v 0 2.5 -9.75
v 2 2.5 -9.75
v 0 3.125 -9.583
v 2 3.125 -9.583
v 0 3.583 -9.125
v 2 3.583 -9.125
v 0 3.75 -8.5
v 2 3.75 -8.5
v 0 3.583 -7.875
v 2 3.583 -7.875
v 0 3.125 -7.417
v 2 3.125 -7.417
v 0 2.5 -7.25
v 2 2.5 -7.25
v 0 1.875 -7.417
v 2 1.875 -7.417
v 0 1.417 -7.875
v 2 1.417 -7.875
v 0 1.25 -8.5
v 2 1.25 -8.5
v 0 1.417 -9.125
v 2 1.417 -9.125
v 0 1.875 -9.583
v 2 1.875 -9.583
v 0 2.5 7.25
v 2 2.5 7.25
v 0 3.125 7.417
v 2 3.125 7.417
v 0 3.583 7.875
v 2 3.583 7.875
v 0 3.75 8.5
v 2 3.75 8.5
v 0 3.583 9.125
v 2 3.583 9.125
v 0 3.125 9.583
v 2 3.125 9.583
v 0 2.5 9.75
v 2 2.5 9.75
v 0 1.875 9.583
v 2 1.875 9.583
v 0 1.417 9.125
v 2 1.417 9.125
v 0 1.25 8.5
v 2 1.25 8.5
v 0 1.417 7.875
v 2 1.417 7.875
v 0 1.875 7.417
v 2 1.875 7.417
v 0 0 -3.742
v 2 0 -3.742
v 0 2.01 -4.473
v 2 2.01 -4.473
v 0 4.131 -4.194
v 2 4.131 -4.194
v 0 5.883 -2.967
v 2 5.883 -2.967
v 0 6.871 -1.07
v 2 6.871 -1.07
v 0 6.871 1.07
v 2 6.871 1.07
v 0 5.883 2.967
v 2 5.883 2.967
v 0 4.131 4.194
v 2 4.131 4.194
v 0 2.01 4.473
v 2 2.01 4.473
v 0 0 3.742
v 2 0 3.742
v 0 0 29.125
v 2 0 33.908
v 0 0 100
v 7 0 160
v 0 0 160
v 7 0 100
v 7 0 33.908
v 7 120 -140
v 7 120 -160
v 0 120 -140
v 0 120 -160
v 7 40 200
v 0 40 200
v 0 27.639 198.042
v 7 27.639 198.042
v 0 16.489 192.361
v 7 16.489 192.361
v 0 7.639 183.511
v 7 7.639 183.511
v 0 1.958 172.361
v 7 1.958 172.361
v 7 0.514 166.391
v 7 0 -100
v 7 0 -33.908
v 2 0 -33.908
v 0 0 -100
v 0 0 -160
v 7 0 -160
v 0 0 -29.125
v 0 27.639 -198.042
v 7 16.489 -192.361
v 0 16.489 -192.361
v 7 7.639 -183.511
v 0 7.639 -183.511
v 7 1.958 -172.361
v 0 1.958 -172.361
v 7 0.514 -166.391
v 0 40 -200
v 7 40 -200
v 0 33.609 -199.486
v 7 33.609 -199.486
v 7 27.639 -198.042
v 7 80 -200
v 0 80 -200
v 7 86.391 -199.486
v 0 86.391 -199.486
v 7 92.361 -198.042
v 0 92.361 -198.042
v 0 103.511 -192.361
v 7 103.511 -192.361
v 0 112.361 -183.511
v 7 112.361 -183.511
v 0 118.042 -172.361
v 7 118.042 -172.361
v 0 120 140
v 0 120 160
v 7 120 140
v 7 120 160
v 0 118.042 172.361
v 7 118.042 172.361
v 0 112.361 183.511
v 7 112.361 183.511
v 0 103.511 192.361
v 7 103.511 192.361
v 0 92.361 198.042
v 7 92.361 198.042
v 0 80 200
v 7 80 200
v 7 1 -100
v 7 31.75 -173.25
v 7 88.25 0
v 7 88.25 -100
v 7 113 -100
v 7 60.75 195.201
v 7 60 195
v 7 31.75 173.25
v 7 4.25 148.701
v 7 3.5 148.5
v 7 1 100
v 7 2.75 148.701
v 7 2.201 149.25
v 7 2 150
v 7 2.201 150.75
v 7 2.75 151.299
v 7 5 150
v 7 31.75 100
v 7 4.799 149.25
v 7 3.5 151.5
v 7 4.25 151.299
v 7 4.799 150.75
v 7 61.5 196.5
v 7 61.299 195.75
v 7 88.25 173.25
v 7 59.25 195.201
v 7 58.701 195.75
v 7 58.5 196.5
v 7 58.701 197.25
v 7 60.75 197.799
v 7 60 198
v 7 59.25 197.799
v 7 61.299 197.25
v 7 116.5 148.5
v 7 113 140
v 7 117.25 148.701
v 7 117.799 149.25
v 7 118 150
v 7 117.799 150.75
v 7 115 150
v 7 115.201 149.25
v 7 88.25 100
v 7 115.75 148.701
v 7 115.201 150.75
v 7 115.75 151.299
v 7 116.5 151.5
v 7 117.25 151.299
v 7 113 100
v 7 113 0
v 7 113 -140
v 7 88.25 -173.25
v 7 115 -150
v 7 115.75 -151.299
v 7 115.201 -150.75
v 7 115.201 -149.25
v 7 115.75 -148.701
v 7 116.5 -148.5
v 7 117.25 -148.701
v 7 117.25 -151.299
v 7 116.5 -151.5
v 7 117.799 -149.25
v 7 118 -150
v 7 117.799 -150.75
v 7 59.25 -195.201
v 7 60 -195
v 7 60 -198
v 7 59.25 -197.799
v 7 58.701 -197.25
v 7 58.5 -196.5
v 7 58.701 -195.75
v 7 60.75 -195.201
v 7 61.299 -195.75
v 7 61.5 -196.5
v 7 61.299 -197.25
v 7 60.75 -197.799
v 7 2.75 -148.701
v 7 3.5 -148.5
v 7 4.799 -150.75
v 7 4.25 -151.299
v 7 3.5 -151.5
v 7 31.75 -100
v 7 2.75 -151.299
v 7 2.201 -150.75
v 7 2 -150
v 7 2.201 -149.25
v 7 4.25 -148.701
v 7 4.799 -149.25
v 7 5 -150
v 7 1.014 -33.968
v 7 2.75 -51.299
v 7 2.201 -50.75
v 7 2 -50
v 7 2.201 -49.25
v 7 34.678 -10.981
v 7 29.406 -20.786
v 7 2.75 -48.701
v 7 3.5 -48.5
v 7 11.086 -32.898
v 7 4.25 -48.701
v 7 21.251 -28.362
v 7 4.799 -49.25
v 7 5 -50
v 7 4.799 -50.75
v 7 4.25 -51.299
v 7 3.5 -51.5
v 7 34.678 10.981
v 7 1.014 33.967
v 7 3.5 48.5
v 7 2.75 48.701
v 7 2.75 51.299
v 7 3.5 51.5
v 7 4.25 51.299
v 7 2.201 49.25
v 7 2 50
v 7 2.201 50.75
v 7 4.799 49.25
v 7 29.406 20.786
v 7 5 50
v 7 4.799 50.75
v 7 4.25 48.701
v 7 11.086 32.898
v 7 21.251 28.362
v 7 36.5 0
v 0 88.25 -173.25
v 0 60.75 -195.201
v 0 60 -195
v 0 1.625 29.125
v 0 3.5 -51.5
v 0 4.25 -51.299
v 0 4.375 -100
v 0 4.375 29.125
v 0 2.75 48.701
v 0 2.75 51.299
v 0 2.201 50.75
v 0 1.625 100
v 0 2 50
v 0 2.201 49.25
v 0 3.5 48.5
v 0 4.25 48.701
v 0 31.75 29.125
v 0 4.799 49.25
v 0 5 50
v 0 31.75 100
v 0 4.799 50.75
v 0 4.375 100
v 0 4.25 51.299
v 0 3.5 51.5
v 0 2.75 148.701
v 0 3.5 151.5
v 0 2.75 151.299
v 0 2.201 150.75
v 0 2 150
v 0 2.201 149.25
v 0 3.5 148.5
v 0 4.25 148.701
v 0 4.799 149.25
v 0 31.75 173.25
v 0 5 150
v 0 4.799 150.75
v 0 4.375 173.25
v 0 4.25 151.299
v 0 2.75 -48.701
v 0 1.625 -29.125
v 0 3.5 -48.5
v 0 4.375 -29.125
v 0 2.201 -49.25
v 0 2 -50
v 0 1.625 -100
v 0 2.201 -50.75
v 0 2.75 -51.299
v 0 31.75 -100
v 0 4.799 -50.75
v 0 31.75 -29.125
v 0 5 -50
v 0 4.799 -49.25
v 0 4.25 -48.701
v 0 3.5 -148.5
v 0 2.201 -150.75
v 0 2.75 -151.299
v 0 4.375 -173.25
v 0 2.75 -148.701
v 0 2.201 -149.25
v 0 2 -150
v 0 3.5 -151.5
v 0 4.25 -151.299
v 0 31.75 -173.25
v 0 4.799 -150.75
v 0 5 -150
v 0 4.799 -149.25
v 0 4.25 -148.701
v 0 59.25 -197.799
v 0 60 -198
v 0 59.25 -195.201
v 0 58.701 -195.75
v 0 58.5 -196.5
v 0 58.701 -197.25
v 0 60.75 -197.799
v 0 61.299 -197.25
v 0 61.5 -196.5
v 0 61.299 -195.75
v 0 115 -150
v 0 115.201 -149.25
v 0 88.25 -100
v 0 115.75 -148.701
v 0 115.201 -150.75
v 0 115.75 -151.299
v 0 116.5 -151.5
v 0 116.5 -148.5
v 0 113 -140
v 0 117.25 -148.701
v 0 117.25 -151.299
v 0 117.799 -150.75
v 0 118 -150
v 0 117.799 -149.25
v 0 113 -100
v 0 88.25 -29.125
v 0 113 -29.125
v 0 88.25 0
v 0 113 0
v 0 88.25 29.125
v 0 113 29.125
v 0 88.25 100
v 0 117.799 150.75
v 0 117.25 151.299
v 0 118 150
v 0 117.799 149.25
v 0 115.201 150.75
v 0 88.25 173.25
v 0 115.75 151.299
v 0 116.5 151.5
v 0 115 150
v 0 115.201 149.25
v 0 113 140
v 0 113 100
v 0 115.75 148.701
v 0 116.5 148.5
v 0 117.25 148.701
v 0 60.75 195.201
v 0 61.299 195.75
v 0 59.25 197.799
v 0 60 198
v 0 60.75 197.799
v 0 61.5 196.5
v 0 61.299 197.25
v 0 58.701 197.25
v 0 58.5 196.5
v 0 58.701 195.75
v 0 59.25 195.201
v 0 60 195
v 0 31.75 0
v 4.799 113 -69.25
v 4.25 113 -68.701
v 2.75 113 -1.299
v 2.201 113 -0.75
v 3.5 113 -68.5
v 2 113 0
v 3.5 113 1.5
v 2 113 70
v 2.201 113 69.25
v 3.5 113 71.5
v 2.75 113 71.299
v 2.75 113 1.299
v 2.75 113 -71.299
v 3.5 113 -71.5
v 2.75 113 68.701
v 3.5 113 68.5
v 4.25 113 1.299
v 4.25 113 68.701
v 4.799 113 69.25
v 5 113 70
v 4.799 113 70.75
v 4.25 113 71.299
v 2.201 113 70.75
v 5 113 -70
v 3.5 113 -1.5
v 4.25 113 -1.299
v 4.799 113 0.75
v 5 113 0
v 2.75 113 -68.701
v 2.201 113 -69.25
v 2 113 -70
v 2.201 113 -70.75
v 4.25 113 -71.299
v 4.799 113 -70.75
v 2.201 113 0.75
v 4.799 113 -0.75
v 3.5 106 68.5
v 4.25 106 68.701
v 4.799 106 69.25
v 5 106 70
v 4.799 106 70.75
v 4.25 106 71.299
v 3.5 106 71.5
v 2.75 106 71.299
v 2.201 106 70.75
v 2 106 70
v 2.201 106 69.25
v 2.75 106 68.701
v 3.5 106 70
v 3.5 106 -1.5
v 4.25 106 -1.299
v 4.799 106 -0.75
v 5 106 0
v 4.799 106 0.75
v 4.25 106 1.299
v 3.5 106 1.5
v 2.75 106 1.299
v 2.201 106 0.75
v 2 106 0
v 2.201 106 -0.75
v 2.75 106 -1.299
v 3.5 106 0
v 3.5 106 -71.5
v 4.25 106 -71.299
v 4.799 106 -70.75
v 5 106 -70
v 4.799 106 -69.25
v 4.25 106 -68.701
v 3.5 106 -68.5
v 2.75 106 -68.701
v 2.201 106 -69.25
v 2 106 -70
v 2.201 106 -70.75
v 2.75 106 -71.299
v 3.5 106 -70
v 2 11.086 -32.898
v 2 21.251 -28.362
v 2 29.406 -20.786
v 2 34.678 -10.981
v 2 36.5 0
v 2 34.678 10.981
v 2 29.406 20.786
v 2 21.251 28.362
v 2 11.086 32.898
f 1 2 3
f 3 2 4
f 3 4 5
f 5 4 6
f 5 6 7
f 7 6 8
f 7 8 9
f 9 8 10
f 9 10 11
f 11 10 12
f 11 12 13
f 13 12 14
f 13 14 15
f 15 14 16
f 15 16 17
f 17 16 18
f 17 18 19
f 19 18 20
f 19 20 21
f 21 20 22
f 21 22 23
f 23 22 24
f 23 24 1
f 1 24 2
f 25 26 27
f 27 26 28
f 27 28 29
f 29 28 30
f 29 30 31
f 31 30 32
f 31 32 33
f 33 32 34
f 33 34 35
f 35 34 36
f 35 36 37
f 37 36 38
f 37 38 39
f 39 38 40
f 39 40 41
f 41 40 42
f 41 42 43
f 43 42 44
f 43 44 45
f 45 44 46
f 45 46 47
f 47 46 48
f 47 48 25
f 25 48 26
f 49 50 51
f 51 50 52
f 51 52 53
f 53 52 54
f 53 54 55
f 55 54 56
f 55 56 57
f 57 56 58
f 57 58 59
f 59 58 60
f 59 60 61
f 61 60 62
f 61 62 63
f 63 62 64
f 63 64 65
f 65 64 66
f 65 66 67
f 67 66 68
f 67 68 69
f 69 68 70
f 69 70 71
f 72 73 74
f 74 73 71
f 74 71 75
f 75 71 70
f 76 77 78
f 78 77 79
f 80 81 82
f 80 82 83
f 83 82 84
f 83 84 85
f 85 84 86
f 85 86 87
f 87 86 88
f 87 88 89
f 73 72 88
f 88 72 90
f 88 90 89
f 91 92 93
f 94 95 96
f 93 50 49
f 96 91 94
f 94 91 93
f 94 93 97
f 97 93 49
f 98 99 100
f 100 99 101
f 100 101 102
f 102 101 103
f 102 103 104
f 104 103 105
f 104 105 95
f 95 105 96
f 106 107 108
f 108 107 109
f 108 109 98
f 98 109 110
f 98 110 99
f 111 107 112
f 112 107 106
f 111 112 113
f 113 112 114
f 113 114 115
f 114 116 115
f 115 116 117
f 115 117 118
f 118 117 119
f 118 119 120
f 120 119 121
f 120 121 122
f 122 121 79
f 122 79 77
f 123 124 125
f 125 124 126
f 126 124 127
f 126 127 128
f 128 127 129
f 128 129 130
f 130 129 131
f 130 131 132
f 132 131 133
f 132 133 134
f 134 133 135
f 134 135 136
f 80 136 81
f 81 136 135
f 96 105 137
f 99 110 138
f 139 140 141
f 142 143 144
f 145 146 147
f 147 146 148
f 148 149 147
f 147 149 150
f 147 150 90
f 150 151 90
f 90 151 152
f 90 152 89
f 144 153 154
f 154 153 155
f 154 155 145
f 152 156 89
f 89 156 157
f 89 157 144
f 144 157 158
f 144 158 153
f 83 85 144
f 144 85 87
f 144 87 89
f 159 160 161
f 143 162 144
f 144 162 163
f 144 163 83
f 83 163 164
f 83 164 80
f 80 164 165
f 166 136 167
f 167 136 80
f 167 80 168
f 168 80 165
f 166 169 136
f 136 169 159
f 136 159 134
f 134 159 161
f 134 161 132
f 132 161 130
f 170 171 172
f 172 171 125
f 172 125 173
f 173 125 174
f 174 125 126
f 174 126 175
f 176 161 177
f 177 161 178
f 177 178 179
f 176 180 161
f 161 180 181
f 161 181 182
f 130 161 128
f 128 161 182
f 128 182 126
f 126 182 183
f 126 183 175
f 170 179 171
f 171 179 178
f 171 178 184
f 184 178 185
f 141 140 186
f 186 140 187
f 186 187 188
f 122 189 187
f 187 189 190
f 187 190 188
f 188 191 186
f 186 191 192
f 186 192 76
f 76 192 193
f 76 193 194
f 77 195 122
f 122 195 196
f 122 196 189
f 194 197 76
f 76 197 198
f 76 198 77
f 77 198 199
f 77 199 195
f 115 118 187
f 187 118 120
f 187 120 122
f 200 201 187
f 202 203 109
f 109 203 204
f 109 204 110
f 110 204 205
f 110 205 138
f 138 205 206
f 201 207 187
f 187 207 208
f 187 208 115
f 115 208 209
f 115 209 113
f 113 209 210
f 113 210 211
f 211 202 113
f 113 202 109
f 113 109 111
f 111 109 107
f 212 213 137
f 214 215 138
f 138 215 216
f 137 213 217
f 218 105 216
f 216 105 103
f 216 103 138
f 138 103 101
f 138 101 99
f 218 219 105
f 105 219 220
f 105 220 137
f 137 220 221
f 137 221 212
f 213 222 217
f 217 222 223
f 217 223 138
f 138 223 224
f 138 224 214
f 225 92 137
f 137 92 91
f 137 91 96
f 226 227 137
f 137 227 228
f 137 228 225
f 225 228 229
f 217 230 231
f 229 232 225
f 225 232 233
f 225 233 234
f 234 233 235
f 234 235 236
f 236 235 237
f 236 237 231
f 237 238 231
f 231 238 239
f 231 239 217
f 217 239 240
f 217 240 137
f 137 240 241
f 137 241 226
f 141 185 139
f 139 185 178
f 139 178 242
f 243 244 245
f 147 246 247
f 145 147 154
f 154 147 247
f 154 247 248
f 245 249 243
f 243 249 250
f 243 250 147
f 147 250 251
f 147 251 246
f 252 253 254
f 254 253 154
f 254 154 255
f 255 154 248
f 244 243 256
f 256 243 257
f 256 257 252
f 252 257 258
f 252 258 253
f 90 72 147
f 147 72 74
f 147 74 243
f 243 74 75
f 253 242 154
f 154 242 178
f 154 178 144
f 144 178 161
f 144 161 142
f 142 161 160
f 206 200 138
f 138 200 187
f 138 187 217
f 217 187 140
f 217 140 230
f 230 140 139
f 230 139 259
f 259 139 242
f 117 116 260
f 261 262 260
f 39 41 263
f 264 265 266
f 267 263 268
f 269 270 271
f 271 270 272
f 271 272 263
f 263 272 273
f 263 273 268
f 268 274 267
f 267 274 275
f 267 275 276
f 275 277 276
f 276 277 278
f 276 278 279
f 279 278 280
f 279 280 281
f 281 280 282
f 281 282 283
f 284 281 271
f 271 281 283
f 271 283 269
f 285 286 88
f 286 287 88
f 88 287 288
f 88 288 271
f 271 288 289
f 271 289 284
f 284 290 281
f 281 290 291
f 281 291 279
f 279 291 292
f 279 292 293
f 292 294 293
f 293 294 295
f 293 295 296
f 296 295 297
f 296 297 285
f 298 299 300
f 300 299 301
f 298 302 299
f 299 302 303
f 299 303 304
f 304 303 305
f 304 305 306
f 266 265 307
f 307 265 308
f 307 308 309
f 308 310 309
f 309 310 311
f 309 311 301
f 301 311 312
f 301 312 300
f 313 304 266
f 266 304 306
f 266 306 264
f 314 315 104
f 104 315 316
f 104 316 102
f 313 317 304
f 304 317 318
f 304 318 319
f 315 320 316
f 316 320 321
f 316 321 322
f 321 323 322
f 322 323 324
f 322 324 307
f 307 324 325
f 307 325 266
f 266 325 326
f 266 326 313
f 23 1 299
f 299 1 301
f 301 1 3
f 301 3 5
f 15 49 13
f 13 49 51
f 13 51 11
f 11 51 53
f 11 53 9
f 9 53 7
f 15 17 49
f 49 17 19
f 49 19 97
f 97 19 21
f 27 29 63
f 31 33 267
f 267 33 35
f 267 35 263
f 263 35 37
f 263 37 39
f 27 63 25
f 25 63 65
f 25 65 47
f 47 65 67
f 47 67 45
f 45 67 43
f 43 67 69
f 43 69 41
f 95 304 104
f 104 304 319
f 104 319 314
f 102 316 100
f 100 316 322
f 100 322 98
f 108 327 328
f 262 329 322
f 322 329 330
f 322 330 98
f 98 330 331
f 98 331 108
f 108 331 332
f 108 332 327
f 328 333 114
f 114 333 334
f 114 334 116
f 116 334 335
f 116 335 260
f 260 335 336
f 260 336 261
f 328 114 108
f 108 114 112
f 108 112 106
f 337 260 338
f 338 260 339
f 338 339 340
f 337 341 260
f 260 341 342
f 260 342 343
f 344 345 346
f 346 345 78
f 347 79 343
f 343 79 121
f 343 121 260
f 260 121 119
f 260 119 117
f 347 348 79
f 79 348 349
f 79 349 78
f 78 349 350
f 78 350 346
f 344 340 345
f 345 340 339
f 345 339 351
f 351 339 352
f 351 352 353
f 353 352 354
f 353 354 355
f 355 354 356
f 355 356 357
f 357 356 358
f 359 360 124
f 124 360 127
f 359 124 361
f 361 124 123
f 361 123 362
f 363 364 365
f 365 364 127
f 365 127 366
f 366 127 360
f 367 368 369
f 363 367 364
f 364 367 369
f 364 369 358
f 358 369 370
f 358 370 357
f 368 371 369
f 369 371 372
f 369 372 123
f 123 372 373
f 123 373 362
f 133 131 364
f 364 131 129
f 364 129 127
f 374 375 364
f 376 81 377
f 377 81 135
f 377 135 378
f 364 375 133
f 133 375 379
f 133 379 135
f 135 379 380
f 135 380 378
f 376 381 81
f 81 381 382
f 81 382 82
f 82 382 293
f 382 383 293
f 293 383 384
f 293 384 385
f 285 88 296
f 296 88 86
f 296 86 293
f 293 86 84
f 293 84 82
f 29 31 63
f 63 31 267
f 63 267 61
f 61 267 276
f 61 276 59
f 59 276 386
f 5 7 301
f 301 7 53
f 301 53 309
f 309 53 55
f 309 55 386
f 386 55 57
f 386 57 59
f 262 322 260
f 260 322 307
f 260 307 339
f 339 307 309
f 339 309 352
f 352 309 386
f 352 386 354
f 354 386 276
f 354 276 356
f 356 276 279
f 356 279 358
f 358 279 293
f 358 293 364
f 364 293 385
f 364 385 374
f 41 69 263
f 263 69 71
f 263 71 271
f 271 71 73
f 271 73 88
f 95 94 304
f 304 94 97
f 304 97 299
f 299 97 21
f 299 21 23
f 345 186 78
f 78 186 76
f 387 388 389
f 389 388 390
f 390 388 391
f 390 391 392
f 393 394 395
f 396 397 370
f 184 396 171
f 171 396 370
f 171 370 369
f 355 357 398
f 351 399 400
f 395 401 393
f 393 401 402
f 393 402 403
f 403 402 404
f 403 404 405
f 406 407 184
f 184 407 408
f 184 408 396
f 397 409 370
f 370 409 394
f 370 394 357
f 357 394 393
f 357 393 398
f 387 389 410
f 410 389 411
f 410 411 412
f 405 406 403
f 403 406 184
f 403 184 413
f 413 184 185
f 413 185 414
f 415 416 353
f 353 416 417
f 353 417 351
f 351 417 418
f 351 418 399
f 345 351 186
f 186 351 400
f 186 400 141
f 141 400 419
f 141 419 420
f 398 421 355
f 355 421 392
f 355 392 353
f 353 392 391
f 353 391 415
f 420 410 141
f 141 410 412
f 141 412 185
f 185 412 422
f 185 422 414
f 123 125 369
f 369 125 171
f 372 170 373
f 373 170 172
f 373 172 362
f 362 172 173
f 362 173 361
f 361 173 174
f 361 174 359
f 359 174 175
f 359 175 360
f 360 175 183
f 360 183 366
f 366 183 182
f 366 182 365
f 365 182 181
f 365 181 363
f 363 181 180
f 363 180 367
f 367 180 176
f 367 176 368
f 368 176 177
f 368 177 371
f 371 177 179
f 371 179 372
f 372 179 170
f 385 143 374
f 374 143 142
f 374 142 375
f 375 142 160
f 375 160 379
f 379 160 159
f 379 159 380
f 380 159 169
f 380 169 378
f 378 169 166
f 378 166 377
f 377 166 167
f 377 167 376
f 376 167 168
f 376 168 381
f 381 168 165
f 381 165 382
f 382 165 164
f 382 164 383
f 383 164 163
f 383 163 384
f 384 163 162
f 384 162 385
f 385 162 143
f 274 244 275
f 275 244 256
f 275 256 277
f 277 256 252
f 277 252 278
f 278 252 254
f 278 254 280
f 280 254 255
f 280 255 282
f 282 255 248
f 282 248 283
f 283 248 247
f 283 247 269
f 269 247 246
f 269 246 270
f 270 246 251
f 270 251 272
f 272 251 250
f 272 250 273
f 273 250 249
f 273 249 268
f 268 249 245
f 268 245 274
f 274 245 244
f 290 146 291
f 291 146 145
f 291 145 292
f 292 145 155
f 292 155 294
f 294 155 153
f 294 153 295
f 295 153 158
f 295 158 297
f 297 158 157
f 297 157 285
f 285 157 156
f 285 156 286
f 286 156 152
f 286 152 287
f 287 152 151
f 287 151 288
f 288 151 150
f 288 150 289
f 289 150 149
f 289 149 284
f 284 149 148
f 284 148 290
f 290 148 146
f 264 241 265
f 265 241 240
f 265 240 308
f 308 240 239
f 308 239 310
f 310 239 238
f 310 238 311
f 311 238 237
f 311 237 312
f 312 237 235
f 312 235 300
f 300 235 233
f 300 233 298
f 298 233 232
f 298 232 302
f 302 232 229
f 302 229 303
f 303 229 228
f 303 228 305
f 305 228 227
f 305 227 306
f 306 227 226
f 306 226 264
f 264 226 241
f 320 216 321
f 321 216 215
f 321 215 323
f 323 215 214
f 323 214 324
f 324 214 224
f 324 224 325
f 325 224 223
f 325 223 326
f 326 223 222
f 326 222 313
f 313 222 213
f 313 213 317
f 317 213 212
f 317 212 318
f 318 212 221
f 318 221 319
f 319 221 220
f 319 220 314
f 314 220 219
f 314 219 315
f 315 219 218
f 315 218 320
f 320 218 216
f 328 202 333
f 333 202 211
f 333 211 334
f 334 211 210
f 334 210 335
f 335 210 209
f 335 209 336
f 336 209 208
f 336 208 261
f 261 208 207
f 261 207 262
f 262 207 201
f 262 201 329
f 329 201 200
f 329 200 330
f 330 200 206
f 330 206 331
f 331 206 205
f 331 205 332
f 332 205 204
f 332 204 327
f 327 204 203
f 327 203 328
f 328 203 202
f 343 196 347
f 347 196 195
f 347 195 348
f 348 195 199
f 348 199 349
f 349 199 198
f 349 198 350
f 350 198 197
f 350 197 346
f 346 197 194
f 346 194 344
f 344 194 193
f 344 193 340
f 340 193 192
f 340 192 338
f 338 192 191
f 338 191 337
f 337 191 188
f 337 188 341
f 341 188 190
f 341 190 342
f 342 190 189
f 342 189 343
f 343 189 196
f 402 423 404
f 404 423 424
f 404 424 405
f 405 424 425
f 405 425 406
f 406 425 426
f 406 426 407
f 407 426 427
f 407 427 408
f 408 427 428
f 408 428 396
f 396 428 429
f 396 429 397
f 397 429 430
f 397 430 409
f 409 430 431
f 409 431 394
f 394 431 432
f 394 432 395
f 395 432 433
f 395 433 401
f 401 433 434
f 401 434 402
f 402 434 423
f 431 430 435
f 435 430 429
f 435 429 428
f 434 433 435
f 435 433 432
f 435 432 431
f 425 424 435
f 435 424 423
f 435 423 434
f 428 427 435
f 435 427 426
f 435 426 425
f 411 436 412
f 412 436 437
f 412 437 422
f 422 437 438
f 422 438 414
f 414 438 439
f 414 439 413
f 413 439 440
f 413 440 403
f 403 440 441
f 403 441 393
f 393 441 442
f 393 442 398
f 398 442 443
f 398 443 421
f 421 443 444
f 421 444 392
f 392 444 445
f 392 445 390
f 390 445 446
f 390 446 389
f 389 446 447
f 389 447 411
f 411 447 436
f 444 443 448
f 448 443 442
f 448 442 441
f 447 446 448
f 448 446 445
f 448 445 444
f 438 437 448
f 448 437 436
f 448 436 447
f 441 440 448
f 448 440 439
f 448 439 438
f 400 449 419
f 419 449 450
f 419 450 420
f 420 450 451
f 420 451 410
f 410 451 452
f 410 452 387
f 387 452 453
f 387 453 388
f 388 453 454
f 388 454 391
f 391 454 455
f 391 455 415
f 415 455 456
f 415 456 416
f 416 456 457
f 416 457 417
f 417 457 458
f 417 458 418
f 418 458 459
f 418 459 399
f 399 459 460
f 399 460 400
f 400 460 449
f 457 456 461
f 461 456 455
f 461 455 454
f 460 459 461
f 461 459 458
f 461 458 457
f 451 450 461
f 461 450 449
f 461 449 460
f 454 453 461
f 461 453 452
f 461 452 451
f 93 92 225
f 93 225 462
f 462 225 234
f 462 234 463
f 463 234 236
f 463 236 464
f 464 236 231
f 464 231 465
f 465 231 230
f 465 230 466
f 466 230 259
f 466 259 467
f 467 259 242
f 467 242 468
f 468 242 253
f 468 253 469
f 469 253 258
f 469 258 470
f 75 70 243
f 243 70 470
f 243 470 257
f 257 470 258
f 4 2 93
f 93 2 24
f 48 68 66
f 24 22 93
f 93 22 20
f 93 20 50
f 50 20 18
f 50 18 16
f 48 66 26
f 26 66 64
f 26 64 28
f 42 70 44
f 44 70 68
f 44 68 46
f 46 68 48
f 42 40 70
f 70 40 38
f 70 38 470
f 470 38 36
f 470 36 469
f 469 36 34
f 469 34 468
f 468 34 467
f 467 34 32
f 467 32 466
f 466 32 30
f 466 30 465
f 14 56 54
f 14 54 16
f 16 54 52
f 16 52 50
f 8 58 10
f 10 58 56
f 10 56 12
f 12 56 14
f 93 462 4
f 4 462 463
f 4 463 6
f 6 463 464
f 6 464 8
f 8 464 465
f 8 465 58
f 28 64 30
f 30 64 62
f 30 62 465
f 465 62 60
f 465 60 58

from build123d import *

# Parameters (mm, degrees)
BOSS_EXTRUDE1_DEPTH     = 7
CUT_EXTRUDE1_DEPTH      = 234.343095034
CUT_EXTRUDE1_DEPTH_BACK = 234.343095034
SKETCH2_R               = 1.5
SKETCH2_W               = 280
SKETCH2_H               = 7
CUT_EXTRUDE2_DEPTH      = 230.821669997
CUT_EXTRUDE2_DEPTH_BACK = 10
CUT_EXTRUDE2_START      = 3
SKETCH3_R               = 1.5
SKETCH4_R               = 1.25
CUT_EXTRUDE3_DEPTH      = 10
CUT_EXTRUDE4_DEPTH      = 4
SKETCH6_R               = 4.5
CUT_EXTRUDE5_DEPTH      = 234.272372989
SKETCH7_R               = 34
CUT_EXTRUDE6_DEPTH      = 5


with BuildPart() as part:
    # Sketch1 → Boss-Extrude1 (new body)
    with BuildSketch(Plane(origin=(0, 0, 0), x_dir=(0, 0, -1), z_dir=(1, 0, 0))):
        with BuildLine():
            Line((160, 0), (-160, 0))
            ThreePointArc((-160, 0), (-188.284271247, 11.715728753), (-200, 40))
            Line((-200, 40), (-200, 80))
            ThreePointArc((-200, 80), (-188.284271247, 108.284271247), (-160, 120))
            Line((-160, 120), (160, 120))
            ThreePointArc((160, 120), (188.284271247, 108.284271247), (200, 80))
            Line((200, 80), (200, 40))
            ThreePointArc((200, 40), (188.284271247, 11.715728753), (160, 0))
        make_face()
    extrude(amount=BOSS_EXTRUDE1_DEPTH)

    # Sketch2 → Cut-Extrude1 (cut, two sides: drawn at the far end of the back side and taken through both)
    with BuildSketch(Plane(origin=(7, 0, 0), x_dir=(0, 0, -1), z_dir=(1, 0, 0)).offset(-CUT_EXTRUDE1_DEPTH_BACK)):
        with Locations((-150, 116.5)):
            Circle(SKETCH2_R)
        with Locations((-196.5, 60)):
            Circle(SKETCH2_R)
        with Locations((-50, 3.5)):
            Circle(SKETCH2_R)
        with Locations((-150, 3.5)):
            Circle(SKETCH2_R)
        with Locations(Location((50, 3.5, 0), (0, 0, 180))):
            Circle(SKETCH2_R)
        with Locations(Location((150, 3.5, 0), (0, 0, 180))):
            Circle(SKETCH2_R)
        with Locations(Location((196.5, 60, 0), (0, 0, 180))):
            Circle(SKETCH2_R)
        with Locations(Location((150, 116.5, 0), (0, 0, 180))):
            Circle(SKETCH2_R)
        with Locations((0, 116.5)):
            Rectangle(SKETCH2_W, SKETCH2_H)
    extrude(amount=CUT_EXTRUDE1_DEPTH + CUT_EXTRUDE1_DEPTH_BACK, mode=Mode.SUBTRACT)

    # Sketch3 → Cut-Extrude2 (cut, two sides: drawn at the far end of the back side and taken through both)
    with BuildSketch(Plane(origin=(0, 113, 0), x_dir=(1, 0, 0), z_dir=(0, 1, 0)).offset(CUT_EXTRUDE2_START - CUT_EXTRUDE2_DEPTH_BACK)):
        with Locations(Location((3.5, 70, 0), (0, 0, 90))):
            Circle(SKETCH3_R)
        with Locations(Location((3.5, 0, 0), (0, 0, 90))):
            Circle(SKETCH3_R)
        with Locations(Location((3.5, -70, 0), (0, 0, 90))):
            Circle(SKETCH3_R)
    extrude(amount=CUT_EXTRUDE2_DEPTH + CUT_EXTRUDE2_DEPTH_BACK, mode=Mode.SUBTRACT)

    # Sketch4 → Cut-Extrude3 (cut)
    with BuildSketch(Plane(origin=(7, 0, 0), x_dir=(0, 0, -1), z_dir=(1, 0, 0))):
        with Locations((-8.5, 2.5)):
            Circle(SKETCH4_R)
        with Locations((8.5, 2.5)):
            Circle(SKETCH4_R)
    extrude(amount=-CUT_EXTRUDE3_DEPTH, mode=Mode.SUBTRACT)

    # Sketch5 → Cut-Extrude4 (cut)
    with BuildSketch(Plane(origin=(7, 0, 0), x_dir=(0, 0, -1), z_dir=(1, 0, 0))):
        with BuildLine():
            Line((14, -15), (-14, -15))
            Line((-14, -15), (-14, 5))
            ThreePointArc((-14, 5), (0, 19), (14, 5))
            Line((14, 5), (14, -15))
        make_face()
    extrude(amount=-CUT_EXTRUDE4_DEPTH, mode=Mode.SUBTRACT)

    # Sketch6 → Cut-Extrude5 (cut, through all)
    with BuildSketch(Plane(origin=(3, 0, 0), x_dir=(0, 0, -1), z_dir=(1, 0, 0))):
        with Locations((0, 2.5)):
            Circle(SKETCH6_R)
    extrude(amount=-CUT_EXTRUDE5_DEPTH, mode=Mode.SUBTRACT)

    # Sketch7 → Cut-Extrude6 (cut)
    with BuildSketch(Plane(origin=(7, 0, 0), x_dir=(0, 0, -1), z_dir=(1, 0, 0))):
        with Locations((0, 2.5)):
            Circle(SKETCH7_R)
    extrude(amount=-CUT_EXTRUDE6_DEPTH, mode=Mode.SUBTRACT)


solid = part.part
